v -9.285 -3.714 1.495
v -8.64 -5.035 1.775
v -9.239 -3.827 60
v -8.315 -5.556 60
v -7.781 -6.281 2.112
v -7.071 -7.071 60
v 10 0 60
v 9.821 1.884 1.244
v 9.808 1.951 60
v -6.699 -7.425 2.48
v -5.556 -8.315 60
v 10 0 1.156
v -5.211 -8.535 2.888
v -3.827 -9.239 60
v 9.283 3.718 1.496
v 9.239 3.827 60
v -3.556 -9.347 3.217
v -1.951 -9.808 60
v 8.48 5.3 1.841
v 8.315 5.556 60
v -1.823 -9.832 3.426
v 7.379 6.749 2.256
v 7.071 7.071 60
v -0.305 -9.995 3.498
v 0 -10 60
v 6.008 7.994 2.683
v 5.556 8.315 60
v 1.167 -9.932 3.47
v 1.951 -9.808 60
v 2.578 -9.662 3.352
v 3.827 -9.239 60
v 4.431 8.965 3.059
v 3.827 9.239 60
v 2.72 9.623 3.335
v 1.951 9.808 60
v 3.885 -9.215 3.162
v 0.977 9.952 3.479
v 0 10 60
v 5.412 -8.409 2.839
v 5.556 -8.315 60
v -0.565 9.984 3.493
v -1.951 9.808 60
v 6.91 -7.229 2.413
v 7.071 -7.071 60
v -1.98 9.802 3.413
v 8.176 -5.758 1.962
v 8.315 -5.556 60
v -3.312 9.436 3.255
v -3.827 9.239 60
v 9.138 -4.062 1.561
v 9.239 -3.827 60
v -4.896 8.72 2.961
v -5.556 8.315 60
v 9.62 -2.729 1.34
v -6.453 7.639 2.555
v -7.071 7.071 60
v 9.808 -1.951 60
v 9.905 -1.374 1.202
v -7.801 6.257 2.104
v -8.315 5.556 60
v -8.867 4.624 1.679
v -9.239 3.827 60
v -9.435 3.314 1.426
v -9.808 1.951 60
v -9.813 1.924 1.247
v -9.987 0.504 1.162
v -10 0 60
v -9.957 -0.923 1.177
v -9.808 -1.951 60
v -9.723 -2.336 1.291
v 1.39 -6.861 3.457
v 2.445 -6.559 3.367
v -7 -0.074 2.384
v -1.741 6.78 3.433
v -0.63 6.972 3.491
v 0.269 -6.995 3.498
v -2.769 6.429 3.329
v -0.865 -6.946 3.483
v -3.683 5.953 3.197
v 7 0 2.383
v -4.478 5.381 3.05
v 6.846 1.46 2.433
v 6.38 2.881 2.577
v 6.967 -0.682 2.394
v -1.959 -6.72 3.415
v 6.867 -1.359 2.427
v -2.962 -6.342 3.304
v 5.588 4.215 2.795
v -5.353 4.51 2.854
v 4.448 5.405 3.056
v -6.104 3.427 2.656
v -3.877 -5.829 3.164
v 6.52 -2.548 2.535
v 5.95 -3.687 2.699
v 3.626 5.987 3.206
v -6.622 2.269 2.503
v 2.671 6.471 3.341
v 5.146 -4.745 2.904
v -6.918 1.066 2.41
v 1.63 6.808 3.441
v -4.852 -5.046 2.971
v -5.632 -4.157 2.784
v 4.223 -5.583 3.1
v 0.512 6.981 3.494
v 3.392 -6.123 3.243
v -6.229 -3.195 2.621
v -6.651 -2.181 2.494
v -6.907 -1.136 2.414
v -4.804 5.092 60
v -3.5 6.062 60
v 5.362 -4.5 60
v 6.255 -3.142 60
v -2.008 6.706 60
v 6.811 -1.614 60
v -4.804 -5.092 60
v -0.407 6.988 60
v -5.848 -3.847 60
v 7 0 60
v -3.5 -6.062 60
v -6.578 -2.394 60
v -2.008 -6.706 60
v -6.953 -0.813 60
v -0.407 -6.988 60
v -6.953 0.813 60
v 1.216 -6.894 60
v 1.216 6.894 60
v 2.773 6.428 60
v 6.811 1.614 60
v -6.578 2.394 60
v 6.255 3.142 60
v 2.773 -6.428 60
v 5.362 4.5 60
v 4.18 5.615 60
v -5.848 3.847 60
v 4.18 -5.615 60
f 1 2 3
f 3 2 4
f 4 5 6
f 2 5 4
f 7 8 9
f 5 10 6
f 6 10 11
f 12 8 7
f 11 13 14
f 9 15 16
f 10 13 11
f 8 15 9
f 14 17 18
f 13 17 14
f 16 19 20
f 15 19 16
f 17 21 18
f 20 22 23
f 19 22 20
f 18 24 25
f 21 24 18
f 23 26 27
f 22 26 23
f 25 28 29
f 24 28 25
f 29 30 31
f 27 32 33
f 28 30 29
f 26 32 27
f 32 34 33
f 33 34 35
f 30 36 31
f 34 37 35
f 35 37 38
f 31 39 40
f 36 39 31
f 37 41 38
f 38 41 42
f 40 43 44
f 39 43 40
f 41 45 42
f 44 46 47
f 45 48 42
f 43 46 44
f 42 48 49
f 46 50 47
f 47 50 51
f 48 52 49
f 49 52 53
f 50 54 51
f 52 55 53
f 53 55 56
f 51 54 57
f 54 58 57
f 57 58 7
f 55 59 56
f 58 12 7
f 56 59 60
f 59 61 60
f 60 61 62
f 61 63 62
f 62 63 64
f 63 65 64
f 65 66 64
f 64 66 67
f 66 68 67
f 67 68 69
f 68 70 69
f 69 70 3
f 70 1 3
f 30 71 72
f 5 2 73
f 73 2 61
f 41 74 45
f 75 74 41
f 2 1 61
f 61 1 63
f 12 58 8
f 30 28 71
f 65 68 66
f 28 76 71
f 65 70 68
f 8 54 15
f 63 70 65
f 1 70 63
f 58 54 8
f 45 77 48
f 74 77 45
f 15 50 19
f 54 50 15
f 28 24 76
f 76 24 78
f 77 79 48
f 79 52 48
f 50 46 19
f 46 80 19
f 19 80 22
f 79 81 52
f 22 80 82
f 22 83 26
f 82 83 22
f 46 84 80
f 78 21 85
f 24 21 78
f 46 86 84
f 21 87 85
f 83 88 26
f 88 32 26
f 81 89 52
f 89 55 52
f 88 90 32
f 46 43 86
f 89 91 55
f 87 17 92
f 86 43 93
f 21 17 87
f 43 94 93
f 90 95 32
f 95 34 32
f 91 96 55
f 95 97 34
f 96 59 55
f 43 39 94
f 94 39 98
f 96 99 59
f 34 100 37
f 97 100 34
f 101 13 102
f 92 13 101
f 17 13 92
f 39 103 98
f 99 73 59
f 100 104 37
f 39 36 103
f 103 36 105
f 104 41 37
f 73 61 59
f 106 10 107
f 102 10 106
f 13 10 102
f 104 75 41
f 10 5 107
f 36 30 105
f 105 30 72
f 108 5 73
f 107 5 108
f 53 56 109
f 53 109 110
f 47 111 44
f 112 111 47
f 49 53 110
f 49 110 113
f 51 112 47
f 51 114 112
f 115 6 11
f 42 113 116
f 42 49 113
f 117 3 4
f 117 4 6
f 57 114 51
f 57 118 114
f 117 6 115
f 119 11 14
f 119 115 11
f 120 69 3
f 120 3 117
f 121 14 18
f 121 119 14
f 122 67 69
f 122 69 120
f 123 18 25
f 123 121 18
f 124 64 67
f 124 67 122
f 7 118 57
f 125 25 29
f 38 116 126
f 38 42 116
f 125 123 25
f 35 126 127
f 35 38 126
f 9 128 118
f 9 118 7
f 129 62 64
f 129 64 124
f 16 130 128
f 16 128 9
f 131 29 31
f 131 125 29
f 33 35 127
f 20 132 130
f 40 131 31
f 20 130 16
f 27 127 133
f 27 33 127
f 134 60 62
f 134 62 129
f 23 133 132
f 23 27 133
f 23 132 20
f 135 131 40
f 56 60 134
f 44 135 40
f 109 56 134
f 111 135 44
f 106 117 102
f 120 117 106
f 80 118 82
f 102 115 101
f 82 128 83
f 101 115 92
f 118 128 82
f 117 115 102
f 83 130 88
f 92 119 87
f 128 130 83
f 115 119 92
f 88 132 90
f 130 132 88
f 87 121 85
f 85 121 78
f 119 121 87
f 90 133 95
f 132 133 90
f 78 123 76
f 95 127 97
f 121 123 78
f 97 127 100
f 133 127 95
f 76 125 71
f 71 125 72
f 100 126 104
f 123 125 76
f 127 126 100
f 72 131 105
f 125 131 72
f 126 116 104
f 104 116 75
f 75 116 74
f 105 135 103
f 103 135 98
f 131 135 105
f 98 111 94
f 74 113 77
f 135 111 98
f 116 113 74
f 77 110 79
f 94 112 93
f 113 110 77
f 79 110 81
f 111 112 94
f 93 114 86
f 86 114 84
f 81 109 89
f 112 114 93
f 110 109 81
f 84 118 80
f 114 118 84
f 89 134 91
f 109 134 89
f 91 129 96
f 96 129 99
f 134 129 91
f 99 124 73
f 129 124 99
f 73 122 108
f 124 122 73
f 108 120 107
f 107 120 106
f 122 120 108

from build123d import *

# Parameters (mm, degrees)
SKETCH_R          = 10
PAD_DEPTH         = 60
CYLINDER_R        = 7
CYLINDER_DEPTH    = 70
CYLINDER001_R     = 22.5
CYLINDER001_DEPTH = 25


with BuildPart() as part:
    # Sketch → Pad (new body)
    with BuildSketch(Plane.XY):
        Circle(SKETCH_R)
    extrude(amount=PAD_DEPTH)

    # Cylinder → Cylinder (cut)
    with BuildSketch(Plane.XY.offset(-6)):
        Circle(CYLINDER_R)
    extrude(amount=CYLINDER_DEPTH, mode=Mode.SUBTRACT)

    # Cylinder001 → Cylinder001 (cut)
    with BuildSketch(Plane(origin=(0, 12, -19), x_dir=(1, 0, 0), z_dir=(0, -1, 0))):
        Circle(CYLINDER001_R)
    extrude(amount=CYLINDER001_DEPTH, mode=Mode.SUBTRACT)


solid = part.part
